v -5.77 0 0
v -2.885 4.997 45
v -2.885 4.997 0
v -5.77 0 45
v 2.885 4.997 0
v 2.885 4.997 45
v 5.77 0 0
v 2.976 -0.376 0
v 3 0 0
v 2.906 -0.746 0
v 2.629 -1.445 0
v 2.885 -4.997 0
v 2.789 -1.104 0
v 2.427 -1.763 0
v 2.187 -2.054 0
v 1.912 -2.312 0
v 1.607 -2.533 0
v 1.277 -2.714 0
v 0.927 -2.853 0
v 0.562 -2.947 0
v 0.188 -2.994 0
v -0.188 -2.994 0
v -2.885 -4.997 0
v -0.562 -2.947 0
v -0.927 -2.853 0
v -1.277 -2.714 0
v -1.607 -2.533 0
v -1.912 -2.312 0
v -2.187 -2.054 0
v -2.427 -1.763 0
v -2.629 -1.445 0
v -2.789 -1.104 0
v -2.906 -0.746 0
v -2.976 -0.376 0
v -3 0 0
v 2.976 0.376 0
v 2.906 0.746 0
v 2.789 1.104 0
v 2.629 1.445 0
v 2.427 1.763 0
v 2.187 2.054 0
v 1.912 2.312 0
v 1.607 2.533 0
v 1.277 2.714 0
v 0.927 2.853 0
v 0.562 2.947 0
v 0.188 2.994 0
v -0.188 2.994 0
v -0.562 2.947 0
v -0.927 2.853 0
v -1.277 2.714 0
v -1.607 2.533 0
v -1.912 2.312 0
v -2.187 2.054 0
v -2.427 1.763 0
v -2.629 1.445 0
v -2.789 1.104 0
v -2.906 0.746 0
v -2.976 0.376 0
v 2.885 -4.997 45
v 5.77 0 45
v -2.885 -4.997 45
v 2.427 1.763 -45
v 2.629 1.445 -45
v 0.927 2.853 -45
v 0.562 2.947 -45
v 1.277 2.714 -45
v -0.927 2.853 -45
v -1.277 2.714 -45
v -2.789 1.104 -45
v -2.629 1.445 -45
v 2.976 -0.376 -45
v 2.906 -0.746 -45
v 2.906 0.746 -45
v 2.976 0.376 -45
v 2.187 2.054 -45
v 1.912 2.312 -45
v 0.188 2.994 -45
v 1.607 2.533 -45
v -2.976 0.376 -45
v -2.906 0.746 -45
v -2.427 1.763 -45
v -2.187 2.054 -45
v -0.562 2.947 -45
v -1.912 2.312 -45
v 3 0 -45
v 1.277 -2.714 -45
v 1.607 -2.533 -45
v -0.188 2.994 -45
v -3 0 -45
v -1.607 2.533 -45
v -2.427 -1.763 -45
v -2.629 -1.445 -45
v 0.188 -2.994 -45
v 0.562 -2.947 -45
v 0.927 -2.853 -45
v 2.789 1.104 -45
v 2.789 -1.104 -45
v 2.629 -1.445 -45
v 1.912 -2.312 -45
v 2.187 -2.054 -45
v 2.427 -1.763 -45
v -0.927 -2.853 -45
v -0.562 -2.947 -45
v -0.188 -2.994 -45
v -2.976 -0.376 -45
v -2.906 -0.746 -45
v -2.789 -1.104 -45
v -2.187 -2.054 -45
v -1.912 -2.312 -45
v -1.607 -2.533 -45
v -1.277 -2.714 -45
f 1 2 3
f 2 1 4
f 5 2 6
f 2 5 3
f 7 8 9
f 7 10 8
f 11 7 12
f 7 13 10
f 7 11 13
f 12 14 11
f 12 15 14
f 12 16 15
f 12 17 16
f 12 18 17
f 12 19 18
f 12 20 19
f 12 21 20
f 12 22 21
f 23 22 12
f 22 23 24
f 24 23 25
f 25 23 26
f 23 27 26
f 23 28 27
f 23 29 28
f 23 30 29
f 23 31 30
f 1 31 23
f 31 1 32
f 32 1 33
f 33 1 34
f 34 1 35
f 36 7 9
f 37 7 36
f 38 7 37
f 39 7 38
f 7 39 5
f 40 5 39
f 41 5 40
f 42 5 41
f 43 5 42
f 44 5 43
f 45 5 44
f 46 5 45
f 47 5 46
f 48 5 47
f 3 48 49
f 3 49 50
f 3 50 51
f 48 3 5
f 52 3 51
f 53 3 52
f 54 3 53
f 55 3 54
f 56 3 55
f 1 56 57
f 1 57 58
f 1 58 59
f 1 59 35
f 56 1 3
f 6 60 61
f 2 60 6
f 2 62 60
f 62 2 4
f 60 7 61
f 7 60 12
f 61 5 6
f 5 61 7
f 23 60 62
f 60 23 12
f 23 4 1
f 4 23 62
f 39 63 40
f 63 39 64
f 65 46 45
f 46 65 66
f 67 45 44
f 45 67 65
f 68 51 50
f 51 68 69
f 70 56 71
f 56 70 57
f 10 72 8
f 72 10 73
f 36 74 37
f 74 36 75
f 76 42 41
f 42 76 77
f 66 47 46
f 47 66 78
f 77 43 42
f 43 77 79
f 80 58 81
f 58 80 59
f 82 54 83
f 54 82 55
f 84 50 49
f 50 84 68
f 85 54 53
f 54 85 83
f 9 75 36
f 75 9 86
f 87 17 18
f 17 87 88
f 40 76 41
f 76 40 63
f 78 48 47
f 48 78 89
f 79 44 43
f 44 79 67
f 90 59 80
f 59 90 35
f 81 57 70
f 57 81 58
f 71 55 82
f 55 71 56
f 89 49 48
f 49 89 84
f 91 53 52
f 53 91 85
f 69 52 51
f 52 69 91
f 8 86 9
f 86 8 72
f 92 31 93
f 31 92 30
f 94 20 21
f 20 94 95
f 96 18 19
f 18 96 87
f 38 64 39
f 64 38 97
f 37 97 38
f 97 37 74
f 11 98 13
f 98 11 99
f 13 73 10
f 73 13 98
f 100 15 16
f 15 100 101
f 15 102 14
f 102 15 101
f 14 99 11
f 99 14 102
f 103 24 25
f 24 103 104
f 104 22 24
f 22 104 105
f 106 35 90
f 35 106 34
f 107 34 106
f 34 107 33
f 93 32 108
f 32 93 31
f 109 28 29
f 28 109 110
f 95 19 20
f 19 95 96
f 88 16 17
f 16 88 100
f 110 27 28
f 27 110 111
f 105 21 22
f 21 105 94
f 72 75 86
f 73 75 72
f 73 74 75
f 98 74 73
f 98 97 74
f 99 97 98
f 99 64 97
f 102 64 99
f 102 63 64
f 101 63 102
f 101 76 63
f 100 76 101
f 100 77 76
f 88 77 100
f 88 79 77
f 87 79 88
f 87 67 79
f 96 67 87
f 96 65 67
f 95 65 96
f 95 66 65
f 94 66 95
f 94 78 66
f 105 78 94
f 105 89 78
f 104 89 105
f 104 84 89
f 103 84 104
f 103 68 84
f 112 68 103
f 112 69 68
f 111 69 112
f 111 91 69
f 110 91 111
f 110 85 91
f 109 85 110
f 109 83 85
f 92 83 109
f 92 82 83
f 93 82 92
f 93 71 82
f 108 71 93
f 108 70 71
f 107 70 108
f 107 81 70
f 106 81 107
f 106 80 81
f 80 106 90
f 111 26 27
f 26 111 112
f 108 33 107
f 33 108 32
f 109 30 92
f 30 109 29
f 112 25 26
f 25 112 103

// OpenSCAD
$fn = 50;


difference() {
	union() {
		linear_extrude(height = 45) {
			polygon(points = [[5.7700000000, 0.0000000000], [2.8850000000, 4.9969665798], [-2.8850000000, 4.9969665798], [-5.7700000000, 0.0000000000], [-2.8850000000, -4.9969665798], [2.8850000000, -4.9969665798]]);
		}
		translate(v = [0, 0, -45]) {
			cylinder(h = 45, r = 3.0000000000);
		}
	}
	union();
}
